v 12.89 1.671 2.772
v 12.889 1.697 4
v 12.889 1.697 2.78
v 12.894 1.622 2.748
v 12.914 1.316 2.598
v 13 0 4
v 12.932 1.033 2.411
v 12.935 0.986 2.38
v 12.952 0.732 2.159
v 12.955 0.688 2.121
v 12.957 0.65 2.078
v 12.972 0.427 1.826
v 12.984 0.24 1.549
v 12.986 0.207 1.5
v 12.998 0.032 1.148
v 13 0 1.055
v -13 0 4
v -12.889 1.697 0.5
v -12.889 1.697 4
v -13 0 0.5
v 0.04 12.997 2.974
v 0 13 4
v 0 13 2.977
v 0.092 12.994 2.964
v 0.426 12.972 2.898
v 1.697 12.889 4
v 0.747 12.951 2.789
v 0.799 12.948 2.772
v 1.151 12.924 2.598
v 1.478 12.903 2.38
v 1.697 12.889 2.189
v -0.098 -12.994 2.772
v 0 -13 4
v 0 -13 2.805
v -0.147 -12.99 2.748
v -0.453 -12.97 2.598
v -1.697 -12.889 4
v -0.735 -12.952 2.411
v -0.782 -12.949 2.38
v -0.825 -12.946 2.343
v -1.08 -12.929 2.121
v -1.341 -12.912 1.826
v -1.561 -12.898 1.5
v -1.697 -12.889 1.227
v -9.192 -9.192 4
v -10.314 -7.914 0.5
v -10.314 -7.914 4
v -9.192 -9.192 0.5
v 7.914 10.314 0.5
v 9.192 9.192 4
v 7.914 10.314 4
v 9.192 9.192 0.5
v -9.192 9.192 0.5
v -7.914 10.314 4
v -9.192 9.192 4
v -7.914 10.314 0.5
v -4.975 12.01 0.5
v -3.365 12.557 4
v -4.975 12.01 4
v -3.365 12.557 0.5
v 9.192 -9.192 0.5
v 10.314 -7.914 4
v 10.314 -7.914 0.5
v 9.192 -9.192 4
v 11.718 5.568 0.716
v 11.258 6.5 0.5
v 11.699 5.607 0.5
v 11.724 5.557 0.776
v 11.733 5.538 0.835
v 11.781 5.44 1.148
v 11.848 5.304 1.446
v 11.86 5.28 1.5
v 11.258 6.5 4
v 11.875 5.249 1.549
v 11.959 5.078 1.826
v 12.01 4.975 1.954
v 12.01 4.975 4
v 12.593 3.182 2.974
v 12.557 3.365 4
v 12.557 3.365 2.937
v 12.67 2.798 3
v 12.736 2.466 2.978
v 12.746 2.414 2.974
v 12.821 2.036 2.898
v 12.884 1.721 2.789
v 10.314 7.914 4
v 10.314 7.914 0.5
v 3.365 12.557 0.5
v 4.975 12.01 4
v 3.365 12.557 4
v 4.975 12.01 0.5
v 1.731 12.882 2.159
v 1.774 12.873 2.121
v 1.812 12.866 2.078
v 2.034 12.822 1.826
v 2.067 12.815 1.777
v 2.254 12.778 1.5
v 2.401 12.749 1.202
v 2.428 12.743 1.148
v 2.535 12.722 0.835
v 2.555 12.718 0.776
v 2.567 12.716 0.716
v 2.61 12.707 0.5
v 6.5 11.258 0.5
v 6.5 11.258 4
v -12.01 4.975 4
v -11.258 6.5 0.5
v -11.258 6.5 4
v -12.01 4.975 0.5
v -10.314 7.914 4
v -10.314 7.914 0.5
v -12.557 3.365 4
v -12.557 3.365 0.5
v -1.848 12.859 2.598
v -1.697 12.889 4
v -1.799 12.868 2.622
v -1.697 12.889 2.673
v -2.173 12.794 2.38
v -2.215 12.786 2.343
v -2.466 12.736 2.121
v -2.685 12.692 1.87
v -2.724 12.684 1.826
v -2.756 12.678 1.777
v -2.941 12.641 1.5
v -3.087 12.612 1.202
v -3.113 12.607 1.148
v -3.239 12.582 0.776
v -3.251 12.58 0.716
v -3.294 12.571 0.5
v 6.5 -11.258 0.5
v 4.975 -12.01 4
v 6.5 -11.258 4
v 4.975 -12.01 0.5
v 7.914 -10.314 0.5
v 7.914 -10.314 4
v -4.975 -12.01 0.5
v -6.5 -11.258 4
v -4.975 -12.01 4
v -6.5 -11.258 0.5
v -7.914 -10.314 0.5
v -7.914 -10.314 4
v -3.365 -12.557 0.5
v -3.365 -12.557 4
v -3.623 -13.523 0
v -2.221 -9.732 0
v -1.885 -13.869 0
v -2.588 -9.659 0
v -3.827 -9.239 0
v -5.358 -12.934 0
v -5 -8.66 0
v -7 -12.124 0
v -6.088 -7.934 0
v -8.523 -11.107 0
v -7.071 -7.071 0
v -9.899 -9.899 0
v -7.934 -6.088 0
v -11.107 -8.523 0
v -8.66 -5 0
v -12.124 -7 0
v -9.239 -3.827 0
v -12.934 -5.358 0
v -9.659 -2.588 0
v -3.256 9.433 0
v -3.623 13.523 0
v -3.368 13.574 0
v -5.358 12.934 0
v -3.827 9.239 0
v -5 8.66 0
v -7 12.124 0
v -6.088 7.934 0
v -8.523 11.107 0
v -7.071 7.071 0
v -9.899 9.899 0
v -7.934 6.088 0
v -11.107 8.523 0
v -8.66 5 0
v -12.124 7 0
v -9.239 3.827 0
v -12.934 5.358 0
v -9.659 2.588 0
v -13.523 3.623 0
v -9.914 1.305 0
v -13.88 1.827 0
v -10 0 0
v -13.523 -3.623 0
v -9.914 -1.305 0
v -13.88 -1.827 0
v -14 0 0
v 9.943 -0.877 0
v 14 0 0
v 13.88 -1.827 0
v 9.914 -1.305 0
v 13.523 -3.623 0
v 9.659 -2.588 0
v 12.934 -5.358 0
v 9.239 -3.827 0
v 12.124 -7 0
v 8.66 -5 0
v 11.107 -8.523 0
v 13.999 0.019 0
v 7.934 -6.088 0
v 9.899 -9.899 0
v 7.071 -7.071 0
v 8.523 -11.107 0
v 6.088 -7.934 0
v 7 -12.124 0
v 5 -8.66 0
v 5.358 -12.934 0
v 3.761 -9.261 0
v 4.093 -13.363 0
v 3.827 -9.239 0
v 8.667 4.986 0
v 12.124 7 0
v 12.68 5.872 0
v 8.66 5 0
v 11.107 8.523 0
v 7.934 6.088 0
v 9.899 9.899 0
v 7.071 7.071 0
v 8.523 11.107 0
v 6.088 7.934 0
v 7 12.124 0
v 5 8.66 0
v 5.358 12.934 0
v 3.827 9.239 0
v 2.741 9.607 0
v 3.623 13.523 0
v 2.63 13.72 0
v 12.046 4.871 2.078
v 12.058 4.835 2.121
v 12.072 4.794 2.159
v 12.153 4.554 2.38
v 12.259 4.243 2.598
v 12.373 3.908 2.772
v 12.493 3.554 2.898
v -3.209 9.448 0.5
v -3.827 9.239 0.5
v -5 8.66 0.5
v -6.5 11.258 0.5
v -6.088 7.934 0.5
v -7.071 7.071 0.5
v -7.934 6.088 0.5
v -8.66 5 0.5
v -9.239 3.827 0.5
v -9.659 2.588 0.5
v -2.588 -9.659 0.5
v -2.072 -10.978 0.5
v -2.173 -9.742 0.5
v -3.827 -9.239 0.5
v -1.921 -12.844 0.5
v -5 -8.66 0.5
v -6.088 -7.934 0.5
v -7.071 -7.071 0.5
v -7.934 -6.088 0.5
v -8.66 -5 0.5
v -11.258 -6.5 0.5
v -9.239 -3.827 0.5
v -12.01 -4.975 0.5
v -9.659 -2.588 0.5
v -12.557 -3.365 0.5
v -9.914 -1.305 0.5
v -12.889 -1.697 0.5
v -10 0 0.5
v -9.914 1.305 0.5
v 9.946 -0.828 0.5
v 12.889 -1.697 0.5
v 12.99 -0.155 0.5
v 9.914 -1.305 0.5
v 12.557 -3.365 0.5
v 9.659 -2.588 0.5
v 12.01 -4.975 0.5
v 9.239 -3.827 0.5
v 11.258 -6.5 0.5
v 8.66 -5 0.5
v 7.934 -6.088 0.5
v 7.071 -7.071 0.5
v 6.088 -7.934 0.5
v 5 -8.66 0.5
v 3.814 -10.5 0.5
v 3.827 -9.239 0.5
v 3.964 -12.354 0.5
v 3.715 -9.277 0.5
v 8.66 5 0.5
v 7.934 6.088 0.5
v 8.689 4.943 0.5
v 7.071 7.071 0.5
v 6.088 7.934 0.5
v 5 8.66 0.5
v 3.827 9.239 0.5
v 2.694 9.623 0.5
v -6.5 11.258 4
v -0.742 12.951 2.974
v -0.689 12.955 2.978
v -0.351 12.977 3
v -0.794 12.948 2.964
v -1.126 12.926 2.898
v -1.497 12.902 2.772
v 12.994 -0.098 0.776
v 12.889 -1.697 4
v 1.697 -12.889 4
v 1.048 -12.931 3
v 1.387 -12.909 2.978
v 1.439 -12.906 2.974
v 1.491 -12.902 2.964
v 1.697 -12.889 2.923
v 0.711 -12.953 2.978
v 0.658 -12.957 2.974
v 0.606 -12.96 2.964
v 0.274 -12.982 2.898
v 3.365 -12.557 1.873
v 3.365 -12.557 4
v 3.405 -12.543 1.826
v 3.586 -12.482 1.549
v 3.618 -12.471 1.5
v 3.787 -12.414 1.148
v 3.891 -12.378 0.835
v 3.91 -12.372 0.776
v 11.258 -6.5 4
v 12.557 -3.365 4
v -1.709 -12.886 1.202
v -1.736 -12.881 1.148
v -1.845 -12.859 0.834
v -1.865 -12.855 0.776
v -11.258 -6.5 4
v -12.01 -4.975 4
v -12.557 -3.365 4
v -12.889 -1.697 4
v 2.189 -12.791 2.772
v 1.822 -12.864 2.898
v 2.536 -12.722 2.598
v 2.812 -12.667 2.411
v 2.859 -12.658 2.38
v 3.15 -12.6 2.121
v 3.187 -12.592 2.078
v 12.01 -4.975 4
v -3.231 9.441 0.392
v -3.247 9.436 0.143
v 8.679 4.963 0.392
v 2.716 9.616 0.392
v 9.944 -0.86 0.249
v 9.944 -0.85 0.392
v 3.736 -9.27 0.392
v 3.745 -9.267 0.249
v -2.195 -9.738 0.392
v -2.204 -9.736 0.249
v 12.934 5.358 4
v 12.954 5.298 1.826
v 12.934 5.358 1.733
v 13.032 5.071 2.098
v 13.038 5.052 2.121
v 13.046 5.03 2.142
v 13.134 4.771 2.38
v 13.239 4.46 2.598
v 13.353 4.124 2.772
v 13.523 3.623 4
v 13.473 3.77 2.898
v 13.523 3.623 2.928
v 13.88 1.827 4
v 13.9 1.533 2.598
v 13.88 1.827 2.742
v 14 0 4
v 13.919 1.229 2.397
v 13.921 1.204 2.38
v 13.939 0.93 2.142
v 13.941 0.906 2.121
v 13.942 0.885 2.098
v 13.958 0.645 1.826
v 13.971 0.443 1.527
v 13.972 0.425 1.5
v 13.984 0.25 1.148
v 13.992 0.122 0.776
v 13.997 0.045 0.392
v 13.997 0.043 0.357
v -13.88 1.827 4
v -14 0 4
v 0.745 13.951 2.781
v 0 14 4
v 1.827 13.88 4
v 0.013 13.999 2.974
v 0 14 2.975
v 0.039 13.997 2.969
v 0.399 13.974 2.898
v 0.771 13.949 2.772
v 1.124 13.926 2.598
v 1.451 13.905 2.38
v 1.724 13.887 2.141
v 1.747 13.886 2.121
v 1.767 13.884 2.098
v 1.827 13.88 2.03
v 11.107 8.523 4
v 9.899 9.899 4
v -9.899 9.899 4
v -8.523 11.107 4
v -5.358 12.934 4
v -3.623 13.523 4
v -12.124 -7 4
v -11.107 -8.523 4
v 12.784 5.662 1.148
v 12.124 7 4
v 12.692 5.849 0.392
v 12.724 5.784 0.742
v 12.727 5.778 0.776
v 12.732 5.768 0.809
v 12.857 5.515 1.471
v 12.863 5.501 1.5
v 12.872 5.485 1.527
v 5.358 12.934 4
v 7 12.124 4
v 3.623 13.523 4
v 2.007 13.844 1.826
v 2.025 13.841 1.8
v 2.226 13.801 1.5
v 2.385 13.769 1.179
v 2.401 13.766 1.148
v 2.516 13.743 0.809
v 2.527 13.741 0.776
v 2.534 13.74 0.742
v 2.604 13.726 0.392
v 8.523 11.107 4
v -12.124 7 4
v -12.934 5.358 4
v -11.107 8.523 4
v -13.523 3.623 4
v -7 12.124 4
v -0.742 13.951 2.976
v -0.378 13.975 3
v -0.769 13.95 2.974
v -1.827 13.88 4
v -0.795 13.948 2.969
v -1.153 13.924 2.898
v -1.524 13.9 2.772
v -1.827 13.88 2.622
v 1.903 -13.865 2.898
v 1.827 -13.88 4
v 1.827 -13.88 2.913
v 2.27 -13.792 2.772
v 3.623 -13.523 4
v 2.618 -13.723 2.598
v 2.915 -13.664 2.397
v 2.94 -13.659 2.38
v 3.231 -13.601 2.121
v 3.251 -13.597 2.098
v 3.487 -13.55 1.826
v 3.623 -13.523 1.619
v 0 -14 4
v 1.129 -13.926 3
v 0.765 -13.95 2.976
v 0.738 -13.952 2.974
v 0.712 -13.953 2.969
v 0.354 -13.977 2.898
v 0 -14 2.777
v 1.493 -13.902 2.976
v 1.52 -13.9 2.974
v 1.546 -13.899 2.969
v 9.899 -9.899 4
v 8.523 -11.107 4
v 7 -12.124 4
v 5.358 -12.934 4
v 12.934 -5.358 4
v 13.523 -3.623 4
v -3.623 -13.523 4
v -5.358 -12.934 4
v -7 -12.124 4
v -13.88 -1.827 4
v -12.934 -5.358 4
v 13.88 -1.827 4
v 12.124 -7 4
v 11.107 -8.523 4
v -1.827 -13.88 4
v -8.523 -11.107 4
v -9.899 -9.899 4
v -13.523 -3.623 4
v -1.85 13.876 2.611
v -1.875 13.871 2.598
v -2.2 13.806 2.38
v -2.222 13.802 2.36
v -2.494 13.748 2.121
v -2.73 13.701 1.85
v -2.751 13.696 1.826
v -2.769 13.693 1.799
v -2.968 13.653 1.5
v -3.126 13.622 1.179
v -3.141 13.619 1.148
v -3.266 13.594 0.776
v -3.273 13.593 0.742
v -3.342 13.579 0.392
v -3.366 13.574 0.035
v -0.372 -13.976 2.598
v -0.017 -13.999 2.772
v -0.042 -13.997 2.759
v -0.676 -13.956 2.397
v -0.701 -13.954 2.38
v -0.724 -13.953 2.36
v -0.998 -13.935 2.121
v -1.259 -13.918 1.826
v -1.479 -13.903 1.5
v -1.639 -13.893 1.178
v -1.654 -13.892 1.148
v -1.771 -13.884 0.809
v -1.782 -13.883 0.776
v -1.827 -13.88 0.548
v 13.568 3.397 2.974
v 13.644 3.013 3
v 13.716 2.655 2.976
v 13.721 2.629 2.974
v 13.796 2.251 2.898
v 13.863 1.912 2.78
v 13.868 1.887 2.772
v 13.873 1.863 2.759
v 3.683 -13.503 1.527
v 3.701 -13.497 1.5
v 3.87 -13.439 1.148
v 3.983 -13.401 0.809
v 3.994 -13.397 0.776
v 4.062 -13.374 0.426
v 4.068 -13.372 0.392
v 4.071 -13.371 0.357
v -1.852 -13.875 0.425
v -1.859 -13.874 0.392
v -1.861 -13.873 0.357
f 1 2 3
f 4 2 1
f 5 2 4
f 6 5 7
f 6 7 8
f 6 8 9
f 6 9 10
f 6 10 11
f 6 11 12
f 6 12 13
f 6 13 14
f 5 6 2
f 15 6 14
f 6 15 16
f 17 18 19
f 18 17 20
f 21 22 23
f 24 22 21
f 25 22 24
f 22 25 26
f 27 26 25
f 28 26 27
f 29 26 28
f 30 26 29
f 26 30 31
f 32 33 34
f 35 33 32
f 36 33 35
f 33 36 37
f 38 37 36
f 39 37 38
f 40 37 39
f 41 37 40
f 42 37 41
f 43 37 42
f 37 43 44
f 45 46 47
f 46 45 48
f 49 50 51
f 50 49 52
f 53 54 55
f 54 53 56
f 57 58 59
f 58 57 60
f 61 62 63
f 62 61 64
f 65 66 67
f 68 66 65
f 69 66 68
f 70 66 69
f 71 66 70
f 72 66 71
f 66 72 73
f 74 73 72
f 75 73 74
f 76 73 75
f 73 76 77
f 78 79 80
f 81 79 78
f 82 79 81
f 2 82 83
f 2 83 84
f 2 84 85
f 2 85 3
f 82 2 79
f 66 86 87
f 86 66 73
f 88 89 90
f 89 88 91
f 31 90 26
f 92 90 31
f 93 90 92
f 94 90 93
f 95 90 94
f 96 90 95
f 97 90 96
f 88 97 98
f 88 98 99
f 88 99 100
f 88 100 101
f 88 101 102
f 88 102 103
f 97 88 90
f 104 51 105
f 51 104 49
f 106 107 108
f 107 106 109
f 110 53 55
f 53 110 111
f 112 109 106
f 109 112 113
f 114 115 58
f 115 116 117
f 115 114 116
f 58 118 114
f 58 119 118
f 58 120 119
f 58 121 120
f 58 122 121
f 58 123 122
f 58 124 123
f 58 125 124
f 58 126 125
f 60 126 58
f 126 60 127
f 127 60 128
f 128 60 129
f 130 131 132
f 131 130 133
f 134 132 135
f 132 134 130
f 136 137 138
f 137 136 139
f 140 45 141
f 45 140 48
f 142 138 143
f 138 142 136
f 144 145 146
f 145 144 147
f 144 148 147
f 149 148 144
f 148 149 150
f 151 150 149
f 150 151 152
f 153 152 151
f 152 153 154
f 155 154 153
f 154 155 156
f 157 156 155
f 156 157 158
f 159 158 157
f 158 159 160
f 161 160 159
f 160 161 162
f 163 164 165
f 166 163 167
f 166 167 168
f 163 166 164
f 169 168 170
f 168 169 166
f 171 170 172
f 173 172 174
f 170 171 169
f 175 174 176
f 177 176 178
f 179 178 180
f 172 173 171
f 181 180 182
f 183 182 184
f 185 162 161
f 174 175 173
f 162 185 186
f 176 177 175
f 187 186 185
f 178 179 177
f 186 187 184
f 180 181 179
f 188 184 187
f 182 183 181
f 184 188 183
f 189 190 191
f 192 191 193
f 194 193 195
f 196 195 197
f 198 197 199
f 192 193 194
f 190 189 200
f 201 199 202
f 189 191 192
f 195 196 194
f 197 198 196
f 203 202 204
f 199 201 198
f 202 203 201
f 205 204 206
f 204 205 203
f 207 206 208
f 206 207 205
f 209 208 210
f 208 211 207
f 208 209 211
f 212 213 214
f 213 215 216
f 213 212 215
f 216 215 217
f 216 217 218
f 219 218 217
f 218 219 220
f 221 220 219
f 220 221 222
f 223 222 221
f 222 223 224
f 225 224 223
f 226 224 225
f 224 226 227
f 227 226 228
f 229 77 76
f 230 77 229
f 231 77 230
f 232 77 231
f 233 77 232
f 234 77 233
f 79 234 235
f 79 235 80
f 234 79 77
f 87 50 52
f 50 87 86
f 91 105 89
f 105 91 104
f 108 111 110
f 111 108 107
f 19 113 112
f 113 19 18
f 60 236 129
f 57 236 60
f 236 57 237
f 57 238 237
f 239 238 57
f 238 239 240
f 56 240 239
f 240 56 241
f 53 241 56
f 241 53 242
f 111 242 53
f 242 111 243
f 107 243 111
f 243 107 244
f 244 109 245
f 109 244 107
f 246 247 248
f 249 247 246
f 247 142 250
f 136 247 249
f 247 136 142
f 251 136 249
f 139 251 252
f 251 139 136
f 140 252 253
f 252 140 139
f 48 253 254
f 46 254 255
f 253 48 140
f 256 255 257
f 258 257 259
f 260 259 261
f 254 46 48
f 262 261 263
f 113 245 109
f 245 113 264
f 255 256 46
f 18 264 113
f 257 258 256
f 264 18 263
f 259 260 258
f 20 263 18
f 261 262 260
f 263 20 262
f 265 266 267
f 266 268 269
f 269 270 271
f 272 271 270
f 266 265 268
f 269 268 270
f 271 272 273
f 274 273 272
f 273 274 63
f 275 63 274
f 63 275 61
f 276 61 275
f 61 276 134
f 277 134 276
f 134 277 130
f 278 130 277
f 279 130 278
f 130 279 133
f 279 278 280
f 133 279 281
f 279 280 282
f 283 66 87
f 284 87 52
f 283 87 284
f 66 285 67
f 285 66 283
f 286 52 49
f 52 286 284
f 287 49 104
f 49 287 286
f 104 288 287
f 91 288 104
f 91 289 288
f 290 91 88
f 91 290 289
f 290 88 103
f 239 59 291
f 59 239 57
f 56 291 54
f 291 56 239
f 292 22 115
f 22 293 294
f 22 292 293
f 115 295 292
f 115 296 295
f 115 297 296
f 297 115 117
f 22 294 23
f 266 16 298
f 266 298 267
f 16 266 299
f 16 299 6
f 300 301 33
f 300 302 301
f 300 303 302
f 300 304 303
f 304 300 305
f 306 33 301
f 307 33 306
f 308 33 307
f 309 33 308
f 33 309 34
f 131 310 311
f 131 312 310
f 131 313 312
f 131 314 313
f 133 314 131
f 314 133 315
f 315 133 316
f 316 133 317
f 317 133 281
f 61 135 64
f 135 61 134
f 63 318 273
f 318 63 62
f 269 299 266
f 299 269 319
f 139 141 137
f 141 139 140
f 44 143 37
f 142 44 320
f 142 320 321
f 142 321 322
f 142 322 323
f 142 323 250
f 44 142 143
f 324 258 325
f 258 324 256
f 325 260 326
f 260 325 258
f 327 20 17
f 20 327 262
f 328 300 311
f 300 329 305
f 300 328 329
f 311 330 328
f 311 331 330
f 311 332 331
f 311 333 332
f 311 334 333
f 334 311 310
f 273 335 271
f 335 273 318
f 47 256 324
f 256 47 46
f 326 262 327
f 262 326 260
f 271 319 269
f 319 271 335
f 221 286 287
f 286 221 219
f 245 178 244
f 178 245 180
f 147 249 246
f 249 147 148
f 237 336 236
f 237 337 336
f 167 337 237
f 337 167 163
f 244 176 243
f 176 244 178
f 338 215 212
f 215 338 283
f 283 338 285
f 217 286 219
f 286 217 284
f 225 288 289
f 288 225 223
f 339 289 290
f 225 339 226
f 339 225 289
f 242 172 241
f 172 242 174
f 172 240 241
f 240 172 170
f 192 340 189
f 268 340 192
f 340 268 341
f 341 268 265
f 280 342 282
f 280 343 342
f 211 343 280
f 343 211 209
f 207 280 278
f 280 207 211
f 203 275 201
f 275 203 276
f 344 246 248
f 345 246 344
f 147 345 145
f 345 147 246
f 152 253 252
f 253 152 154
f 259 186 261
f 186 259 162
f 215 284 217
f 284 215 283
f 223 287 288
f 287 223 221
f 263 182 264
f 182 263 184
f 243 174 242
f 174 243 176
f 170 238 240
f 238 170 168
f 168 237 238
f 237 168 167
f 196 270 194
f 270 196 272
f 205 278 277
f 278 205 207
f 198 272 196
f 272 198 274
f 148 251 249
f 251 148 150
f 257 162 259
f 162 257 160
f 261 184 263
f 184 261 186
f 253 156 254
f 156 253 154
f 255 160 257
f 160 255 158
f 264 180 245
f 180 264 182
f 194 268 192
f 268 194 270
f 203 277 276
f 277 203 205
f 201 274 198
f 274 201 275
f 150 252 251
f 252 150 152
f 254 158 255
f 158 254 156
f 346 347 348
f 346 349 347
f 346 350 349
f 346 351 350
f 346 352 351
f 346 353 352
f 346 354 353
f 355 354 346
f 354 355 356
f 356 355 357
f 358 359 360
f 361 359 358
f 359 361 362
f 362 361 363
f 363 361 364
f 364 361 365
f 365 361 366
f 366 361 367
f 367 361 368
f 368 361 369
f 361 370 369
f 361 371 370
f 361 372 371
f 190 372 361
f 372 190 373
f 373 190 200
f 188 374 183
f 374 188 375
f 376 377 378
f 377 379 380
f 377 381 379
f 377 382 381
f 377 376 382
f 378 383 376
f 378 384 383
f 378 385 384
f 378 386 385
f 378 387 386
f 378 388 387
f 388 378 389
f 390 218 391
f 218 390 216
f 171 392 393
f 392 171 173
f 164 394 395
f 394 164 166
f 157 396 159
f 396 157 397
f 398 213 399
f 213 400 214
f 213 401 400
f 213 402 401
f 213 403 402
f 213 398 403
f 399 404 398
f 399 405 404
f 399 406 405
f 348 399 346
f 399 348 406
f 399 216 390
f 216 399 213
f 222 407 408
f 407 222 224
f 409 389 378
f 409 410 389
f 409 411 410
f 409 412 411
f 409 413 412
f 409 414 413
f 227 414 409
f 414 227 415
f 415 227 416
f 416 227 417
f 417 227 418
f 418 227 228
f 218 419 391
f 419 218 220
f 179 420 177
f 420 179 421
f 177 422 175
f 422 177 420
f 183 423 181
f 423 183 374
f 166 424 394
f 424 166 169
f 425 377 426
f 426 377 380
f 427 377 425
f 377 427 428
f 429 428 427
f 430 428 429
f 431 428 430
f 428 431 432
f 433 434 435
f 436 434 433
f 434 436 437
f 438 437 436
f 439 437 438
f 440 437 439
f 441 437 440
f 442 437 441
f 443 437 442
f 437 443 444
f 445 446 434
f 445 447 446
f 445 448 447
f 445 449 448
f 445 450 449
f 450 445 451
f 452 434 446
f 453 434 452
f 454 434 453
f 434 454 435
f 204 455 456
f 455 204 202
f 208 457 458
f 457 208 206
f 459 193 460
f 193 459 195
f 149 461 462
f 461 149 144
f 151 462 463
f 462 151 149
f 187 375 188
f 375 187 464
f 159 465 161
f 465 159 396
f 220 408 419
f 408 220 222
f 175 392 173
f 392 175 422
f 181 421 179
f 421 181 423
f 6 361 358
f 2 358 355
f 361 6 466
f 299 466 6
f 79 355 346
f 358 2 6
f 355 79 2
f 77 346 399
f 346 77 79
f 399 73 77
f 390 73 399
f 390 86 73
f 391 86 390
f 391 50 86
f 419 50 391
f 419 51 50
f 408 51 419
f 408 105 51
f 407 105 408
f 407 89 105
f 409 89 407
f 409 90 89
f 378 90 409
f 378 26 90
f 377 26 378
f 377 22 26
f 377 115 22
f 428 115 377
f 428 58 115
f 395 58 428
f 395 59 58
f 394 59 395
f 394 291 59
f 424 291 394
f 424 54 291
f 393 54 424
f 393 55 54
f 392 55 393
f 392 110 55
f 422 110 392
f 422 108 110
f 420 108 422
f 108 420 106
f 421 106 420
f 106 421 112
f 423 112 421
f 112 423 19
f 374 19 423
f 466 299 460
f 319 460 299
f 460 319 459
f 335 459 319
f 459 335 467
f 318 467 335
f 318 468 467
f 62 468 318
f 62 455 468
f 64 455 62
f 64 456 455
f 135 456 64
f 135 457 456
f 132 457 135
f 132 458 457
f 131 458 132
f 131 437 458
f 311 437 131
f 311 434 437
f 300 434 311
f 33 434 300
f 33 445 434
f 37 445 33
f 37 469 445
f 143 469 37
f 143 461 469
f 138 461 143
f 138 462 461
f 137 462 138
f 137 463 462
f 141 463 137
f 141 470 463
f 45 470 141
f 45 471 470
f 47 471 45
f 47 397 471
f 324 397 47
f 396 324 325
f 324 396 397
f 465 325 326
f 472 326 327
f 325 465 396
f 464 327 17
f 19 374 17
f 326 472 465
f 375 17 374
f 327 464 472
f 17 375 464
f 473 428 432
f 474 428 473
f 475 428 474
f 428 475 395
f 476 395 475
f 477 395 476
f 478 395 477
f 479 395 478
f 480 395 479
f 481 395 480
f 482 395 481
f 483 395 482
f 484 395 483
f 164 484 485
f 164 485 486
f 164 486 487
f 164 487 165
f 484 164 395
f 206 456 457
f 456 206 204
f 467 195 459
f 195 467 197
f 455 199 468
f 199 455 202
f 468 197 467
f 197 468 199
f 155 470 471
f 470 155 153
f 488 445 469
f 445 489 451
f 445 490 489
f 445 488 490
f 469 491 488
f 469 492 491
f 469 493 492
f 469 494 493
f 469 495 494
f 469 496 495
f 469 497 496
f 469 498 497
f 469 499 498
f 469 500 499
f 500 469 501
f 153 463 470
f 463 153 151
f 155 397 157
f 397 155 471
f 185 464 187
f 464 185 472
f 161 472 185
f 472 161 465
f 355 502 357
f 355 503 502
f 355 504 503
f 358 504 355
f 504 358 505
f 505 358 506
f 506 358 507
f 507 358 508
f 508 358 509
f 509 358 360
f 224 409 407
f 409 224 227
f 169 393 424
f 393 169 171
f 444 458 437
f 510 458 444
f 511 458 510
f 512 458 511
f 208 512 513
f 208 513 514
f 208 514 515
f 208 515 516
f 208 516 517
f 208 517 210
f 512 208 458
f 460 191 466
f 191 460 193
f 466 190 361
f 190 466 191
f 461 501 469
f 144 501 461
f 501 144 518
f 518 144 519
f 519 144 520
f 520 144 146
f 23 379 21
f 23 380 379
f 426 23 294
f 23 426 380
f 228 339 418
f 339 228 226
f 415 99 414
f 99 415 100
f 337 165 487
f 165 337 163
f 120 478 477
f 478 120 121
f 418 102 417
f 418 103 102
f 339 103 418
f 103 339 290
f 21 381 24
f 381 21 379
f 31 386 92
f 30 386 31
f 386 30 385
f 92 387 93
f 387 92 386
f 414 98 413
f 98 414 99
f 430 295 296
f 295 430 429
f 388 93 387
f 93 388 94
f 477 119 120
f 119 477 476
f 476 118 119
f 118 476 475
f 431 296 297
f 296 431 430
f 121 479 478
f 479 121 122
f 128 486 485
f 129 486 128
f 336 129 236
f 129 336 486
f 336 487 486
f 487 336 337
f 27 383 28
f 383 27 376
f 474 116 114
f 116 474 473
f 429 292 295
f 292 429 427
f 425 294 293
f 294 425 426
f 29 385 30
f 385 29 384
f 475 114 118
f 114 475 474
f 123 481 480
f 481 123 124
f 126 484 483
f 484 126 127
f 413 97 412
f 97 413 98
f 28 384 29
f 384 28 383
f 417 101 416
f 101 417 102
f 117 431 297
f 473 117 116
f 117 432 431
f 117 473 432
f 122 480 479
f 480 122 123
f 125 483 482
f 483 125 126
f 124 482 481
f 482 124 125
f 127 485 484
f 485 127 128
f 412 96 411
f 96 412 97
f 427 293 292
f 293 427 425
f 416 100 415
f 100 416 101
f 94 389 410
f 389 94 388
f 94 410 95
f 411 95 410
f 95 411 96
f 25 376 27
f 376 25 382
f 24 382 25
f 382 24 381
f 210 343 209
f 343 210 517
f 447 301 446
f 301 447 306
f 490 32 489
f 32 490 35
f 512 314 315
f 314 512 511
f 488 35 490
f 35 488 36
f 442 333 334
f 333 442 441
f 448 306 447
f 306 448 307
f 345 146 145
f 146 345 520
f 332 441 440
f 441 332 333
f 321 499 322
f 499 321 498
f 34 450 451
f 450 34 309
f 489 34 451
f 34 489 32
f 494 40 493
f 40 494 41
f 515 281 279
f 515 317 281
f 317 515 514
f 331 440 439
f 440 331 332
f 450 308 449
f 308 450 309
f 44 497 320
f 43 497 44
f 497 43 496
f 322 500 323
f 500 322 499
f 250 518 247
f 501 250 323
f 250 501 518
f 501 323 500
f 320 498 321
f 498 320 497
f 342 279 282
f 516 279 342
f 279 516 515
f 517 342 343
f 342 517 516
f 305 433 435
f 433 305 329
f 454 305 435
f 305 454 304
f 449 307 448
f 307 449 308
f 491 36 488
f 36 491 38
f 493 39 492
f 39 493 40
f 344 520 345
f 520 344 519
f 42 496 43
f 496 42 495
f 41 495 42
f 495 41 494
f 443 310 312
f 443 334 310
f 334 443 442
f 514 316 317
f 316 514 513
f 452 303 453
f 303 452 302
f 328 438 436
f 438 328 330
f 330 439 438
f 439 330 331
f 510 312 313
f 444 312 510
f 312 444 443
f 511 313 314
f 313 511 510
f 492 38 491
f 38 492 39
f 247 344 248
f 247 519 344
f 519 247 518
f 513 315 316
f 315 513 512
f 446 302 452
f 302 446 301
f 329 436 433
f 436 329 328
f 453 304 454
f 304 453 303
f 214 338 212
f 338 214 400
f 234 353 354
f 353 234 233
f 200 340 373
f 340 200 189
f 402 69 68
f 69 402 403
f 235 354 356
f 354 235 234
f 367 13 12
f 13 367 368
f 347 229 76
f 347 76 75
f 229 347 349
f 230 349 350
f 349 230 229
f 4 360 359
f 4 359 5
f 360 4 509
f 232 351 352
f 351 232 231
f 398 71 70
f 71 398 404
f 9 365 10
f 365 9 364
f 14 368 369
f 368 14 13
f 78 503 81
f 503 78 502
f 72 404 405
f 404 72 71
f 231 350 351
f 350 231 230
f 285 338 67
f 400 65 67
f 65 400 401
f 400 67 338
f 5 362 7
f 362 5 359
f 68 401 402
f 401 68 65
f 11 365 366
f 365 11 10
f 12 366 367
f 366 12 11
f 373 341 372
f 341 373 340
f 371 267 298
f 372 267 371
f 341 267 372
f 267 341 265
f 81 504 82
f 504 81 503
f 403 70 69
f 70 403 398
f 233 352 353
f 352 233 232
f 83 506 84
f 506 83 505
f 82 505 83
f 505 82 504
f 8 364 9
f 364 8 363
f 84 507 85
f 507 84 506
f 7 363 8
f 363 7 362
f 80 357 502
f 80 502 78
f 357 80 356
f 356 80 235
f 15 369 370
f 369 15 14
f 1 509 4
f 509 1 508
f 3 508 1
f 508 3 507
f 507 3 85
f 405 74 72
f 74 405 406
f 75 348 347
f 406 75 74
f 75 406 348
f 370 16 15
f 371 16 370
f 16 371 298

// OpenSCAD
// file: ../build_environments.scad
// build_environments.scad: modules to build level sections
//

module pool(diameter=10.0, wall_height=2.0, step_width=3.0, connections=[])
{
    difference() {
        union() {
        difference() {
            cylinder(h=0.5,r1=diameter+step_width,r2=diameter+step_width,$fn=48);
            translate([0,0,-0.1])
                cylinder(h=0.7,r1=diameter,r2=diameter,$fn=48);
        }
        difference() {
            cylinder(h=wall_height,r1=diameter+step_width+1.0,r2=diameter+step_width+1.0,$fn=48);
            translate([0,0,-0.1])
                cylinder(h=wall_height+0.2,r1=diameter+step_width,r2=diameter+step_width,$fn=48);
        }
        }
    
        for (c = connections)
        {
            rotate([0,90,0]) {
                angle = atan2(c[1],c[0]);
                rotate([-angle,0,0]) {
                    cylinder(h=diameter+5.0,r1=c[2],r2=c[2],$fn=48);
                }
            }
        }
    }
}

module straight(length=10.0, width=2.0, dy1=0.0, dy2=0.0, dz=0.0)
{
    dims = [0, 0, 0, 0, 0, (dz/length)];
    matrix = [
        [ 1, dims[0], dims[1], 0 ],
        [ dims[2], 1, dims[4], 0 ],
        [ dims[5], dims[3], 1, 0 ],
        [ 0, 0, 0, 1 ]
    ];
    multmatrix(matrix)
    difference() {
        translate([dy1,0,0])
        union() {
            rotate([0,90,0]) {
                difference() {
                    cylinder(h=(length-dy1-dy2),r1=width+1.0,r2=width+1.0,$fn=24);
                    translate([0,0,-0.1])
                        cylinder(h=(length-dy1-dy2+0.2),r1=width,r2=width,$fn=24);
                }
                difference() {
                    cylinder(h=1.0,r1=width+2.0,r2=width+2.0,$fn=24);
                    translate([0,0,-0.1])
                        cylinder(h=1.2,r1=width,r2=width,$fn=24);
                }
                translate([0,0,(length-dy1-dy2)-1.0]) {
                    difference() {
                        cylinder(h=1.0,r1=width+2.0,r2=width+2.0,$fn=24);
                        translate([0,0,-0.1])
                            cylinder(h=1.2,r1=width,r2=width,$fn=24);
                    }
                }
            }
        }
        translate([0,0,-(2*width+4.0)/2])
            cube([3*length,3*length,2*width+4.0],center=true);
    }
}

module curve(p0=[0,0], center=[0,0], dir=1, angle=0.0, width=2.0)
{
    radius = sqrt((p0[0]-center[0])*(p0[0]-center[0]) + (p0[1]-center[1])*(p0[1]-center[1]));
    if (dir == 0) {
        difference() {
            rotate([0,0,-90])
            difference() {
                rotate_extrude(angle = angle, convexity = 10, $fn=32)
                    translate([radius, 0, 0])
                        circle(r = width+1.0,$fn=24);
                rotate([0,0,-1.0])
                    rotate_extrude(angle = angle+2.0, convexity = 10, $fn=32)
                        translate([radius, 0, 0])
                            circle(r = width,$fn=24);
            }
            translate([0,0,-(2*width+4.0)/2])
                cube([5*radius,5*radius,2*width+4.0],center=true);
        }
    }
    else {
        difference() {
            rotate([0,0,90])
            difference() {
                rotate_extrude(angle = -angle, convexity = 10, $fn=32)
                    translate([radius, 0, 0])
                        circle(r = width+1.0,$fn=24);
                rotate([0,0,1.0])
                    rotate_extrude(angle = -angle-2.0, convexity = 10, $fn=32)
                        translate([radius, 0, 0])
                            circle(r = width,$fn=24);
            }
            translate([0,0,-(2*width+4.0)/2])
                cube([5*radius,5*radius,2*width+4.0],center=true);
        }
    }

}

// test pool
//pool(diameter=12.0000, wall_height=3.0000, step_width=3.0000, connections=[[0.0000,-26.0000,2.0000], [23.6074,0.0000,2.0000]]);

// test straight, slope
//straight(length=26.0000, width=2.0000, dy1=11.8322, dy2=6.7082, dz=0.0000);
//straight(length=29.1549, width=12.0000, dy1=0.0000, dy2=0.0000, dz=-15.0000);

// test curve
//curve(p0=[23.6074, 0.0000], center=[23.6074, 5.0000], dir=0, angle=60.1011, width=2.0000);
//curve(p0=[33.6426, 12.4219], center=[37.9771, 9.9295], dir=1, angle=120.4627, width=2.0000);
// main file
use <../build_environments.scad>;
pool(diameter=10.0000, wall_height=4.0000, step_width=3.0000, connections=[[-0.3703,13.7021,3.0000], [1.0559,-13.0225,3.0000], [53.4576,11.8050,3.0000]]);
